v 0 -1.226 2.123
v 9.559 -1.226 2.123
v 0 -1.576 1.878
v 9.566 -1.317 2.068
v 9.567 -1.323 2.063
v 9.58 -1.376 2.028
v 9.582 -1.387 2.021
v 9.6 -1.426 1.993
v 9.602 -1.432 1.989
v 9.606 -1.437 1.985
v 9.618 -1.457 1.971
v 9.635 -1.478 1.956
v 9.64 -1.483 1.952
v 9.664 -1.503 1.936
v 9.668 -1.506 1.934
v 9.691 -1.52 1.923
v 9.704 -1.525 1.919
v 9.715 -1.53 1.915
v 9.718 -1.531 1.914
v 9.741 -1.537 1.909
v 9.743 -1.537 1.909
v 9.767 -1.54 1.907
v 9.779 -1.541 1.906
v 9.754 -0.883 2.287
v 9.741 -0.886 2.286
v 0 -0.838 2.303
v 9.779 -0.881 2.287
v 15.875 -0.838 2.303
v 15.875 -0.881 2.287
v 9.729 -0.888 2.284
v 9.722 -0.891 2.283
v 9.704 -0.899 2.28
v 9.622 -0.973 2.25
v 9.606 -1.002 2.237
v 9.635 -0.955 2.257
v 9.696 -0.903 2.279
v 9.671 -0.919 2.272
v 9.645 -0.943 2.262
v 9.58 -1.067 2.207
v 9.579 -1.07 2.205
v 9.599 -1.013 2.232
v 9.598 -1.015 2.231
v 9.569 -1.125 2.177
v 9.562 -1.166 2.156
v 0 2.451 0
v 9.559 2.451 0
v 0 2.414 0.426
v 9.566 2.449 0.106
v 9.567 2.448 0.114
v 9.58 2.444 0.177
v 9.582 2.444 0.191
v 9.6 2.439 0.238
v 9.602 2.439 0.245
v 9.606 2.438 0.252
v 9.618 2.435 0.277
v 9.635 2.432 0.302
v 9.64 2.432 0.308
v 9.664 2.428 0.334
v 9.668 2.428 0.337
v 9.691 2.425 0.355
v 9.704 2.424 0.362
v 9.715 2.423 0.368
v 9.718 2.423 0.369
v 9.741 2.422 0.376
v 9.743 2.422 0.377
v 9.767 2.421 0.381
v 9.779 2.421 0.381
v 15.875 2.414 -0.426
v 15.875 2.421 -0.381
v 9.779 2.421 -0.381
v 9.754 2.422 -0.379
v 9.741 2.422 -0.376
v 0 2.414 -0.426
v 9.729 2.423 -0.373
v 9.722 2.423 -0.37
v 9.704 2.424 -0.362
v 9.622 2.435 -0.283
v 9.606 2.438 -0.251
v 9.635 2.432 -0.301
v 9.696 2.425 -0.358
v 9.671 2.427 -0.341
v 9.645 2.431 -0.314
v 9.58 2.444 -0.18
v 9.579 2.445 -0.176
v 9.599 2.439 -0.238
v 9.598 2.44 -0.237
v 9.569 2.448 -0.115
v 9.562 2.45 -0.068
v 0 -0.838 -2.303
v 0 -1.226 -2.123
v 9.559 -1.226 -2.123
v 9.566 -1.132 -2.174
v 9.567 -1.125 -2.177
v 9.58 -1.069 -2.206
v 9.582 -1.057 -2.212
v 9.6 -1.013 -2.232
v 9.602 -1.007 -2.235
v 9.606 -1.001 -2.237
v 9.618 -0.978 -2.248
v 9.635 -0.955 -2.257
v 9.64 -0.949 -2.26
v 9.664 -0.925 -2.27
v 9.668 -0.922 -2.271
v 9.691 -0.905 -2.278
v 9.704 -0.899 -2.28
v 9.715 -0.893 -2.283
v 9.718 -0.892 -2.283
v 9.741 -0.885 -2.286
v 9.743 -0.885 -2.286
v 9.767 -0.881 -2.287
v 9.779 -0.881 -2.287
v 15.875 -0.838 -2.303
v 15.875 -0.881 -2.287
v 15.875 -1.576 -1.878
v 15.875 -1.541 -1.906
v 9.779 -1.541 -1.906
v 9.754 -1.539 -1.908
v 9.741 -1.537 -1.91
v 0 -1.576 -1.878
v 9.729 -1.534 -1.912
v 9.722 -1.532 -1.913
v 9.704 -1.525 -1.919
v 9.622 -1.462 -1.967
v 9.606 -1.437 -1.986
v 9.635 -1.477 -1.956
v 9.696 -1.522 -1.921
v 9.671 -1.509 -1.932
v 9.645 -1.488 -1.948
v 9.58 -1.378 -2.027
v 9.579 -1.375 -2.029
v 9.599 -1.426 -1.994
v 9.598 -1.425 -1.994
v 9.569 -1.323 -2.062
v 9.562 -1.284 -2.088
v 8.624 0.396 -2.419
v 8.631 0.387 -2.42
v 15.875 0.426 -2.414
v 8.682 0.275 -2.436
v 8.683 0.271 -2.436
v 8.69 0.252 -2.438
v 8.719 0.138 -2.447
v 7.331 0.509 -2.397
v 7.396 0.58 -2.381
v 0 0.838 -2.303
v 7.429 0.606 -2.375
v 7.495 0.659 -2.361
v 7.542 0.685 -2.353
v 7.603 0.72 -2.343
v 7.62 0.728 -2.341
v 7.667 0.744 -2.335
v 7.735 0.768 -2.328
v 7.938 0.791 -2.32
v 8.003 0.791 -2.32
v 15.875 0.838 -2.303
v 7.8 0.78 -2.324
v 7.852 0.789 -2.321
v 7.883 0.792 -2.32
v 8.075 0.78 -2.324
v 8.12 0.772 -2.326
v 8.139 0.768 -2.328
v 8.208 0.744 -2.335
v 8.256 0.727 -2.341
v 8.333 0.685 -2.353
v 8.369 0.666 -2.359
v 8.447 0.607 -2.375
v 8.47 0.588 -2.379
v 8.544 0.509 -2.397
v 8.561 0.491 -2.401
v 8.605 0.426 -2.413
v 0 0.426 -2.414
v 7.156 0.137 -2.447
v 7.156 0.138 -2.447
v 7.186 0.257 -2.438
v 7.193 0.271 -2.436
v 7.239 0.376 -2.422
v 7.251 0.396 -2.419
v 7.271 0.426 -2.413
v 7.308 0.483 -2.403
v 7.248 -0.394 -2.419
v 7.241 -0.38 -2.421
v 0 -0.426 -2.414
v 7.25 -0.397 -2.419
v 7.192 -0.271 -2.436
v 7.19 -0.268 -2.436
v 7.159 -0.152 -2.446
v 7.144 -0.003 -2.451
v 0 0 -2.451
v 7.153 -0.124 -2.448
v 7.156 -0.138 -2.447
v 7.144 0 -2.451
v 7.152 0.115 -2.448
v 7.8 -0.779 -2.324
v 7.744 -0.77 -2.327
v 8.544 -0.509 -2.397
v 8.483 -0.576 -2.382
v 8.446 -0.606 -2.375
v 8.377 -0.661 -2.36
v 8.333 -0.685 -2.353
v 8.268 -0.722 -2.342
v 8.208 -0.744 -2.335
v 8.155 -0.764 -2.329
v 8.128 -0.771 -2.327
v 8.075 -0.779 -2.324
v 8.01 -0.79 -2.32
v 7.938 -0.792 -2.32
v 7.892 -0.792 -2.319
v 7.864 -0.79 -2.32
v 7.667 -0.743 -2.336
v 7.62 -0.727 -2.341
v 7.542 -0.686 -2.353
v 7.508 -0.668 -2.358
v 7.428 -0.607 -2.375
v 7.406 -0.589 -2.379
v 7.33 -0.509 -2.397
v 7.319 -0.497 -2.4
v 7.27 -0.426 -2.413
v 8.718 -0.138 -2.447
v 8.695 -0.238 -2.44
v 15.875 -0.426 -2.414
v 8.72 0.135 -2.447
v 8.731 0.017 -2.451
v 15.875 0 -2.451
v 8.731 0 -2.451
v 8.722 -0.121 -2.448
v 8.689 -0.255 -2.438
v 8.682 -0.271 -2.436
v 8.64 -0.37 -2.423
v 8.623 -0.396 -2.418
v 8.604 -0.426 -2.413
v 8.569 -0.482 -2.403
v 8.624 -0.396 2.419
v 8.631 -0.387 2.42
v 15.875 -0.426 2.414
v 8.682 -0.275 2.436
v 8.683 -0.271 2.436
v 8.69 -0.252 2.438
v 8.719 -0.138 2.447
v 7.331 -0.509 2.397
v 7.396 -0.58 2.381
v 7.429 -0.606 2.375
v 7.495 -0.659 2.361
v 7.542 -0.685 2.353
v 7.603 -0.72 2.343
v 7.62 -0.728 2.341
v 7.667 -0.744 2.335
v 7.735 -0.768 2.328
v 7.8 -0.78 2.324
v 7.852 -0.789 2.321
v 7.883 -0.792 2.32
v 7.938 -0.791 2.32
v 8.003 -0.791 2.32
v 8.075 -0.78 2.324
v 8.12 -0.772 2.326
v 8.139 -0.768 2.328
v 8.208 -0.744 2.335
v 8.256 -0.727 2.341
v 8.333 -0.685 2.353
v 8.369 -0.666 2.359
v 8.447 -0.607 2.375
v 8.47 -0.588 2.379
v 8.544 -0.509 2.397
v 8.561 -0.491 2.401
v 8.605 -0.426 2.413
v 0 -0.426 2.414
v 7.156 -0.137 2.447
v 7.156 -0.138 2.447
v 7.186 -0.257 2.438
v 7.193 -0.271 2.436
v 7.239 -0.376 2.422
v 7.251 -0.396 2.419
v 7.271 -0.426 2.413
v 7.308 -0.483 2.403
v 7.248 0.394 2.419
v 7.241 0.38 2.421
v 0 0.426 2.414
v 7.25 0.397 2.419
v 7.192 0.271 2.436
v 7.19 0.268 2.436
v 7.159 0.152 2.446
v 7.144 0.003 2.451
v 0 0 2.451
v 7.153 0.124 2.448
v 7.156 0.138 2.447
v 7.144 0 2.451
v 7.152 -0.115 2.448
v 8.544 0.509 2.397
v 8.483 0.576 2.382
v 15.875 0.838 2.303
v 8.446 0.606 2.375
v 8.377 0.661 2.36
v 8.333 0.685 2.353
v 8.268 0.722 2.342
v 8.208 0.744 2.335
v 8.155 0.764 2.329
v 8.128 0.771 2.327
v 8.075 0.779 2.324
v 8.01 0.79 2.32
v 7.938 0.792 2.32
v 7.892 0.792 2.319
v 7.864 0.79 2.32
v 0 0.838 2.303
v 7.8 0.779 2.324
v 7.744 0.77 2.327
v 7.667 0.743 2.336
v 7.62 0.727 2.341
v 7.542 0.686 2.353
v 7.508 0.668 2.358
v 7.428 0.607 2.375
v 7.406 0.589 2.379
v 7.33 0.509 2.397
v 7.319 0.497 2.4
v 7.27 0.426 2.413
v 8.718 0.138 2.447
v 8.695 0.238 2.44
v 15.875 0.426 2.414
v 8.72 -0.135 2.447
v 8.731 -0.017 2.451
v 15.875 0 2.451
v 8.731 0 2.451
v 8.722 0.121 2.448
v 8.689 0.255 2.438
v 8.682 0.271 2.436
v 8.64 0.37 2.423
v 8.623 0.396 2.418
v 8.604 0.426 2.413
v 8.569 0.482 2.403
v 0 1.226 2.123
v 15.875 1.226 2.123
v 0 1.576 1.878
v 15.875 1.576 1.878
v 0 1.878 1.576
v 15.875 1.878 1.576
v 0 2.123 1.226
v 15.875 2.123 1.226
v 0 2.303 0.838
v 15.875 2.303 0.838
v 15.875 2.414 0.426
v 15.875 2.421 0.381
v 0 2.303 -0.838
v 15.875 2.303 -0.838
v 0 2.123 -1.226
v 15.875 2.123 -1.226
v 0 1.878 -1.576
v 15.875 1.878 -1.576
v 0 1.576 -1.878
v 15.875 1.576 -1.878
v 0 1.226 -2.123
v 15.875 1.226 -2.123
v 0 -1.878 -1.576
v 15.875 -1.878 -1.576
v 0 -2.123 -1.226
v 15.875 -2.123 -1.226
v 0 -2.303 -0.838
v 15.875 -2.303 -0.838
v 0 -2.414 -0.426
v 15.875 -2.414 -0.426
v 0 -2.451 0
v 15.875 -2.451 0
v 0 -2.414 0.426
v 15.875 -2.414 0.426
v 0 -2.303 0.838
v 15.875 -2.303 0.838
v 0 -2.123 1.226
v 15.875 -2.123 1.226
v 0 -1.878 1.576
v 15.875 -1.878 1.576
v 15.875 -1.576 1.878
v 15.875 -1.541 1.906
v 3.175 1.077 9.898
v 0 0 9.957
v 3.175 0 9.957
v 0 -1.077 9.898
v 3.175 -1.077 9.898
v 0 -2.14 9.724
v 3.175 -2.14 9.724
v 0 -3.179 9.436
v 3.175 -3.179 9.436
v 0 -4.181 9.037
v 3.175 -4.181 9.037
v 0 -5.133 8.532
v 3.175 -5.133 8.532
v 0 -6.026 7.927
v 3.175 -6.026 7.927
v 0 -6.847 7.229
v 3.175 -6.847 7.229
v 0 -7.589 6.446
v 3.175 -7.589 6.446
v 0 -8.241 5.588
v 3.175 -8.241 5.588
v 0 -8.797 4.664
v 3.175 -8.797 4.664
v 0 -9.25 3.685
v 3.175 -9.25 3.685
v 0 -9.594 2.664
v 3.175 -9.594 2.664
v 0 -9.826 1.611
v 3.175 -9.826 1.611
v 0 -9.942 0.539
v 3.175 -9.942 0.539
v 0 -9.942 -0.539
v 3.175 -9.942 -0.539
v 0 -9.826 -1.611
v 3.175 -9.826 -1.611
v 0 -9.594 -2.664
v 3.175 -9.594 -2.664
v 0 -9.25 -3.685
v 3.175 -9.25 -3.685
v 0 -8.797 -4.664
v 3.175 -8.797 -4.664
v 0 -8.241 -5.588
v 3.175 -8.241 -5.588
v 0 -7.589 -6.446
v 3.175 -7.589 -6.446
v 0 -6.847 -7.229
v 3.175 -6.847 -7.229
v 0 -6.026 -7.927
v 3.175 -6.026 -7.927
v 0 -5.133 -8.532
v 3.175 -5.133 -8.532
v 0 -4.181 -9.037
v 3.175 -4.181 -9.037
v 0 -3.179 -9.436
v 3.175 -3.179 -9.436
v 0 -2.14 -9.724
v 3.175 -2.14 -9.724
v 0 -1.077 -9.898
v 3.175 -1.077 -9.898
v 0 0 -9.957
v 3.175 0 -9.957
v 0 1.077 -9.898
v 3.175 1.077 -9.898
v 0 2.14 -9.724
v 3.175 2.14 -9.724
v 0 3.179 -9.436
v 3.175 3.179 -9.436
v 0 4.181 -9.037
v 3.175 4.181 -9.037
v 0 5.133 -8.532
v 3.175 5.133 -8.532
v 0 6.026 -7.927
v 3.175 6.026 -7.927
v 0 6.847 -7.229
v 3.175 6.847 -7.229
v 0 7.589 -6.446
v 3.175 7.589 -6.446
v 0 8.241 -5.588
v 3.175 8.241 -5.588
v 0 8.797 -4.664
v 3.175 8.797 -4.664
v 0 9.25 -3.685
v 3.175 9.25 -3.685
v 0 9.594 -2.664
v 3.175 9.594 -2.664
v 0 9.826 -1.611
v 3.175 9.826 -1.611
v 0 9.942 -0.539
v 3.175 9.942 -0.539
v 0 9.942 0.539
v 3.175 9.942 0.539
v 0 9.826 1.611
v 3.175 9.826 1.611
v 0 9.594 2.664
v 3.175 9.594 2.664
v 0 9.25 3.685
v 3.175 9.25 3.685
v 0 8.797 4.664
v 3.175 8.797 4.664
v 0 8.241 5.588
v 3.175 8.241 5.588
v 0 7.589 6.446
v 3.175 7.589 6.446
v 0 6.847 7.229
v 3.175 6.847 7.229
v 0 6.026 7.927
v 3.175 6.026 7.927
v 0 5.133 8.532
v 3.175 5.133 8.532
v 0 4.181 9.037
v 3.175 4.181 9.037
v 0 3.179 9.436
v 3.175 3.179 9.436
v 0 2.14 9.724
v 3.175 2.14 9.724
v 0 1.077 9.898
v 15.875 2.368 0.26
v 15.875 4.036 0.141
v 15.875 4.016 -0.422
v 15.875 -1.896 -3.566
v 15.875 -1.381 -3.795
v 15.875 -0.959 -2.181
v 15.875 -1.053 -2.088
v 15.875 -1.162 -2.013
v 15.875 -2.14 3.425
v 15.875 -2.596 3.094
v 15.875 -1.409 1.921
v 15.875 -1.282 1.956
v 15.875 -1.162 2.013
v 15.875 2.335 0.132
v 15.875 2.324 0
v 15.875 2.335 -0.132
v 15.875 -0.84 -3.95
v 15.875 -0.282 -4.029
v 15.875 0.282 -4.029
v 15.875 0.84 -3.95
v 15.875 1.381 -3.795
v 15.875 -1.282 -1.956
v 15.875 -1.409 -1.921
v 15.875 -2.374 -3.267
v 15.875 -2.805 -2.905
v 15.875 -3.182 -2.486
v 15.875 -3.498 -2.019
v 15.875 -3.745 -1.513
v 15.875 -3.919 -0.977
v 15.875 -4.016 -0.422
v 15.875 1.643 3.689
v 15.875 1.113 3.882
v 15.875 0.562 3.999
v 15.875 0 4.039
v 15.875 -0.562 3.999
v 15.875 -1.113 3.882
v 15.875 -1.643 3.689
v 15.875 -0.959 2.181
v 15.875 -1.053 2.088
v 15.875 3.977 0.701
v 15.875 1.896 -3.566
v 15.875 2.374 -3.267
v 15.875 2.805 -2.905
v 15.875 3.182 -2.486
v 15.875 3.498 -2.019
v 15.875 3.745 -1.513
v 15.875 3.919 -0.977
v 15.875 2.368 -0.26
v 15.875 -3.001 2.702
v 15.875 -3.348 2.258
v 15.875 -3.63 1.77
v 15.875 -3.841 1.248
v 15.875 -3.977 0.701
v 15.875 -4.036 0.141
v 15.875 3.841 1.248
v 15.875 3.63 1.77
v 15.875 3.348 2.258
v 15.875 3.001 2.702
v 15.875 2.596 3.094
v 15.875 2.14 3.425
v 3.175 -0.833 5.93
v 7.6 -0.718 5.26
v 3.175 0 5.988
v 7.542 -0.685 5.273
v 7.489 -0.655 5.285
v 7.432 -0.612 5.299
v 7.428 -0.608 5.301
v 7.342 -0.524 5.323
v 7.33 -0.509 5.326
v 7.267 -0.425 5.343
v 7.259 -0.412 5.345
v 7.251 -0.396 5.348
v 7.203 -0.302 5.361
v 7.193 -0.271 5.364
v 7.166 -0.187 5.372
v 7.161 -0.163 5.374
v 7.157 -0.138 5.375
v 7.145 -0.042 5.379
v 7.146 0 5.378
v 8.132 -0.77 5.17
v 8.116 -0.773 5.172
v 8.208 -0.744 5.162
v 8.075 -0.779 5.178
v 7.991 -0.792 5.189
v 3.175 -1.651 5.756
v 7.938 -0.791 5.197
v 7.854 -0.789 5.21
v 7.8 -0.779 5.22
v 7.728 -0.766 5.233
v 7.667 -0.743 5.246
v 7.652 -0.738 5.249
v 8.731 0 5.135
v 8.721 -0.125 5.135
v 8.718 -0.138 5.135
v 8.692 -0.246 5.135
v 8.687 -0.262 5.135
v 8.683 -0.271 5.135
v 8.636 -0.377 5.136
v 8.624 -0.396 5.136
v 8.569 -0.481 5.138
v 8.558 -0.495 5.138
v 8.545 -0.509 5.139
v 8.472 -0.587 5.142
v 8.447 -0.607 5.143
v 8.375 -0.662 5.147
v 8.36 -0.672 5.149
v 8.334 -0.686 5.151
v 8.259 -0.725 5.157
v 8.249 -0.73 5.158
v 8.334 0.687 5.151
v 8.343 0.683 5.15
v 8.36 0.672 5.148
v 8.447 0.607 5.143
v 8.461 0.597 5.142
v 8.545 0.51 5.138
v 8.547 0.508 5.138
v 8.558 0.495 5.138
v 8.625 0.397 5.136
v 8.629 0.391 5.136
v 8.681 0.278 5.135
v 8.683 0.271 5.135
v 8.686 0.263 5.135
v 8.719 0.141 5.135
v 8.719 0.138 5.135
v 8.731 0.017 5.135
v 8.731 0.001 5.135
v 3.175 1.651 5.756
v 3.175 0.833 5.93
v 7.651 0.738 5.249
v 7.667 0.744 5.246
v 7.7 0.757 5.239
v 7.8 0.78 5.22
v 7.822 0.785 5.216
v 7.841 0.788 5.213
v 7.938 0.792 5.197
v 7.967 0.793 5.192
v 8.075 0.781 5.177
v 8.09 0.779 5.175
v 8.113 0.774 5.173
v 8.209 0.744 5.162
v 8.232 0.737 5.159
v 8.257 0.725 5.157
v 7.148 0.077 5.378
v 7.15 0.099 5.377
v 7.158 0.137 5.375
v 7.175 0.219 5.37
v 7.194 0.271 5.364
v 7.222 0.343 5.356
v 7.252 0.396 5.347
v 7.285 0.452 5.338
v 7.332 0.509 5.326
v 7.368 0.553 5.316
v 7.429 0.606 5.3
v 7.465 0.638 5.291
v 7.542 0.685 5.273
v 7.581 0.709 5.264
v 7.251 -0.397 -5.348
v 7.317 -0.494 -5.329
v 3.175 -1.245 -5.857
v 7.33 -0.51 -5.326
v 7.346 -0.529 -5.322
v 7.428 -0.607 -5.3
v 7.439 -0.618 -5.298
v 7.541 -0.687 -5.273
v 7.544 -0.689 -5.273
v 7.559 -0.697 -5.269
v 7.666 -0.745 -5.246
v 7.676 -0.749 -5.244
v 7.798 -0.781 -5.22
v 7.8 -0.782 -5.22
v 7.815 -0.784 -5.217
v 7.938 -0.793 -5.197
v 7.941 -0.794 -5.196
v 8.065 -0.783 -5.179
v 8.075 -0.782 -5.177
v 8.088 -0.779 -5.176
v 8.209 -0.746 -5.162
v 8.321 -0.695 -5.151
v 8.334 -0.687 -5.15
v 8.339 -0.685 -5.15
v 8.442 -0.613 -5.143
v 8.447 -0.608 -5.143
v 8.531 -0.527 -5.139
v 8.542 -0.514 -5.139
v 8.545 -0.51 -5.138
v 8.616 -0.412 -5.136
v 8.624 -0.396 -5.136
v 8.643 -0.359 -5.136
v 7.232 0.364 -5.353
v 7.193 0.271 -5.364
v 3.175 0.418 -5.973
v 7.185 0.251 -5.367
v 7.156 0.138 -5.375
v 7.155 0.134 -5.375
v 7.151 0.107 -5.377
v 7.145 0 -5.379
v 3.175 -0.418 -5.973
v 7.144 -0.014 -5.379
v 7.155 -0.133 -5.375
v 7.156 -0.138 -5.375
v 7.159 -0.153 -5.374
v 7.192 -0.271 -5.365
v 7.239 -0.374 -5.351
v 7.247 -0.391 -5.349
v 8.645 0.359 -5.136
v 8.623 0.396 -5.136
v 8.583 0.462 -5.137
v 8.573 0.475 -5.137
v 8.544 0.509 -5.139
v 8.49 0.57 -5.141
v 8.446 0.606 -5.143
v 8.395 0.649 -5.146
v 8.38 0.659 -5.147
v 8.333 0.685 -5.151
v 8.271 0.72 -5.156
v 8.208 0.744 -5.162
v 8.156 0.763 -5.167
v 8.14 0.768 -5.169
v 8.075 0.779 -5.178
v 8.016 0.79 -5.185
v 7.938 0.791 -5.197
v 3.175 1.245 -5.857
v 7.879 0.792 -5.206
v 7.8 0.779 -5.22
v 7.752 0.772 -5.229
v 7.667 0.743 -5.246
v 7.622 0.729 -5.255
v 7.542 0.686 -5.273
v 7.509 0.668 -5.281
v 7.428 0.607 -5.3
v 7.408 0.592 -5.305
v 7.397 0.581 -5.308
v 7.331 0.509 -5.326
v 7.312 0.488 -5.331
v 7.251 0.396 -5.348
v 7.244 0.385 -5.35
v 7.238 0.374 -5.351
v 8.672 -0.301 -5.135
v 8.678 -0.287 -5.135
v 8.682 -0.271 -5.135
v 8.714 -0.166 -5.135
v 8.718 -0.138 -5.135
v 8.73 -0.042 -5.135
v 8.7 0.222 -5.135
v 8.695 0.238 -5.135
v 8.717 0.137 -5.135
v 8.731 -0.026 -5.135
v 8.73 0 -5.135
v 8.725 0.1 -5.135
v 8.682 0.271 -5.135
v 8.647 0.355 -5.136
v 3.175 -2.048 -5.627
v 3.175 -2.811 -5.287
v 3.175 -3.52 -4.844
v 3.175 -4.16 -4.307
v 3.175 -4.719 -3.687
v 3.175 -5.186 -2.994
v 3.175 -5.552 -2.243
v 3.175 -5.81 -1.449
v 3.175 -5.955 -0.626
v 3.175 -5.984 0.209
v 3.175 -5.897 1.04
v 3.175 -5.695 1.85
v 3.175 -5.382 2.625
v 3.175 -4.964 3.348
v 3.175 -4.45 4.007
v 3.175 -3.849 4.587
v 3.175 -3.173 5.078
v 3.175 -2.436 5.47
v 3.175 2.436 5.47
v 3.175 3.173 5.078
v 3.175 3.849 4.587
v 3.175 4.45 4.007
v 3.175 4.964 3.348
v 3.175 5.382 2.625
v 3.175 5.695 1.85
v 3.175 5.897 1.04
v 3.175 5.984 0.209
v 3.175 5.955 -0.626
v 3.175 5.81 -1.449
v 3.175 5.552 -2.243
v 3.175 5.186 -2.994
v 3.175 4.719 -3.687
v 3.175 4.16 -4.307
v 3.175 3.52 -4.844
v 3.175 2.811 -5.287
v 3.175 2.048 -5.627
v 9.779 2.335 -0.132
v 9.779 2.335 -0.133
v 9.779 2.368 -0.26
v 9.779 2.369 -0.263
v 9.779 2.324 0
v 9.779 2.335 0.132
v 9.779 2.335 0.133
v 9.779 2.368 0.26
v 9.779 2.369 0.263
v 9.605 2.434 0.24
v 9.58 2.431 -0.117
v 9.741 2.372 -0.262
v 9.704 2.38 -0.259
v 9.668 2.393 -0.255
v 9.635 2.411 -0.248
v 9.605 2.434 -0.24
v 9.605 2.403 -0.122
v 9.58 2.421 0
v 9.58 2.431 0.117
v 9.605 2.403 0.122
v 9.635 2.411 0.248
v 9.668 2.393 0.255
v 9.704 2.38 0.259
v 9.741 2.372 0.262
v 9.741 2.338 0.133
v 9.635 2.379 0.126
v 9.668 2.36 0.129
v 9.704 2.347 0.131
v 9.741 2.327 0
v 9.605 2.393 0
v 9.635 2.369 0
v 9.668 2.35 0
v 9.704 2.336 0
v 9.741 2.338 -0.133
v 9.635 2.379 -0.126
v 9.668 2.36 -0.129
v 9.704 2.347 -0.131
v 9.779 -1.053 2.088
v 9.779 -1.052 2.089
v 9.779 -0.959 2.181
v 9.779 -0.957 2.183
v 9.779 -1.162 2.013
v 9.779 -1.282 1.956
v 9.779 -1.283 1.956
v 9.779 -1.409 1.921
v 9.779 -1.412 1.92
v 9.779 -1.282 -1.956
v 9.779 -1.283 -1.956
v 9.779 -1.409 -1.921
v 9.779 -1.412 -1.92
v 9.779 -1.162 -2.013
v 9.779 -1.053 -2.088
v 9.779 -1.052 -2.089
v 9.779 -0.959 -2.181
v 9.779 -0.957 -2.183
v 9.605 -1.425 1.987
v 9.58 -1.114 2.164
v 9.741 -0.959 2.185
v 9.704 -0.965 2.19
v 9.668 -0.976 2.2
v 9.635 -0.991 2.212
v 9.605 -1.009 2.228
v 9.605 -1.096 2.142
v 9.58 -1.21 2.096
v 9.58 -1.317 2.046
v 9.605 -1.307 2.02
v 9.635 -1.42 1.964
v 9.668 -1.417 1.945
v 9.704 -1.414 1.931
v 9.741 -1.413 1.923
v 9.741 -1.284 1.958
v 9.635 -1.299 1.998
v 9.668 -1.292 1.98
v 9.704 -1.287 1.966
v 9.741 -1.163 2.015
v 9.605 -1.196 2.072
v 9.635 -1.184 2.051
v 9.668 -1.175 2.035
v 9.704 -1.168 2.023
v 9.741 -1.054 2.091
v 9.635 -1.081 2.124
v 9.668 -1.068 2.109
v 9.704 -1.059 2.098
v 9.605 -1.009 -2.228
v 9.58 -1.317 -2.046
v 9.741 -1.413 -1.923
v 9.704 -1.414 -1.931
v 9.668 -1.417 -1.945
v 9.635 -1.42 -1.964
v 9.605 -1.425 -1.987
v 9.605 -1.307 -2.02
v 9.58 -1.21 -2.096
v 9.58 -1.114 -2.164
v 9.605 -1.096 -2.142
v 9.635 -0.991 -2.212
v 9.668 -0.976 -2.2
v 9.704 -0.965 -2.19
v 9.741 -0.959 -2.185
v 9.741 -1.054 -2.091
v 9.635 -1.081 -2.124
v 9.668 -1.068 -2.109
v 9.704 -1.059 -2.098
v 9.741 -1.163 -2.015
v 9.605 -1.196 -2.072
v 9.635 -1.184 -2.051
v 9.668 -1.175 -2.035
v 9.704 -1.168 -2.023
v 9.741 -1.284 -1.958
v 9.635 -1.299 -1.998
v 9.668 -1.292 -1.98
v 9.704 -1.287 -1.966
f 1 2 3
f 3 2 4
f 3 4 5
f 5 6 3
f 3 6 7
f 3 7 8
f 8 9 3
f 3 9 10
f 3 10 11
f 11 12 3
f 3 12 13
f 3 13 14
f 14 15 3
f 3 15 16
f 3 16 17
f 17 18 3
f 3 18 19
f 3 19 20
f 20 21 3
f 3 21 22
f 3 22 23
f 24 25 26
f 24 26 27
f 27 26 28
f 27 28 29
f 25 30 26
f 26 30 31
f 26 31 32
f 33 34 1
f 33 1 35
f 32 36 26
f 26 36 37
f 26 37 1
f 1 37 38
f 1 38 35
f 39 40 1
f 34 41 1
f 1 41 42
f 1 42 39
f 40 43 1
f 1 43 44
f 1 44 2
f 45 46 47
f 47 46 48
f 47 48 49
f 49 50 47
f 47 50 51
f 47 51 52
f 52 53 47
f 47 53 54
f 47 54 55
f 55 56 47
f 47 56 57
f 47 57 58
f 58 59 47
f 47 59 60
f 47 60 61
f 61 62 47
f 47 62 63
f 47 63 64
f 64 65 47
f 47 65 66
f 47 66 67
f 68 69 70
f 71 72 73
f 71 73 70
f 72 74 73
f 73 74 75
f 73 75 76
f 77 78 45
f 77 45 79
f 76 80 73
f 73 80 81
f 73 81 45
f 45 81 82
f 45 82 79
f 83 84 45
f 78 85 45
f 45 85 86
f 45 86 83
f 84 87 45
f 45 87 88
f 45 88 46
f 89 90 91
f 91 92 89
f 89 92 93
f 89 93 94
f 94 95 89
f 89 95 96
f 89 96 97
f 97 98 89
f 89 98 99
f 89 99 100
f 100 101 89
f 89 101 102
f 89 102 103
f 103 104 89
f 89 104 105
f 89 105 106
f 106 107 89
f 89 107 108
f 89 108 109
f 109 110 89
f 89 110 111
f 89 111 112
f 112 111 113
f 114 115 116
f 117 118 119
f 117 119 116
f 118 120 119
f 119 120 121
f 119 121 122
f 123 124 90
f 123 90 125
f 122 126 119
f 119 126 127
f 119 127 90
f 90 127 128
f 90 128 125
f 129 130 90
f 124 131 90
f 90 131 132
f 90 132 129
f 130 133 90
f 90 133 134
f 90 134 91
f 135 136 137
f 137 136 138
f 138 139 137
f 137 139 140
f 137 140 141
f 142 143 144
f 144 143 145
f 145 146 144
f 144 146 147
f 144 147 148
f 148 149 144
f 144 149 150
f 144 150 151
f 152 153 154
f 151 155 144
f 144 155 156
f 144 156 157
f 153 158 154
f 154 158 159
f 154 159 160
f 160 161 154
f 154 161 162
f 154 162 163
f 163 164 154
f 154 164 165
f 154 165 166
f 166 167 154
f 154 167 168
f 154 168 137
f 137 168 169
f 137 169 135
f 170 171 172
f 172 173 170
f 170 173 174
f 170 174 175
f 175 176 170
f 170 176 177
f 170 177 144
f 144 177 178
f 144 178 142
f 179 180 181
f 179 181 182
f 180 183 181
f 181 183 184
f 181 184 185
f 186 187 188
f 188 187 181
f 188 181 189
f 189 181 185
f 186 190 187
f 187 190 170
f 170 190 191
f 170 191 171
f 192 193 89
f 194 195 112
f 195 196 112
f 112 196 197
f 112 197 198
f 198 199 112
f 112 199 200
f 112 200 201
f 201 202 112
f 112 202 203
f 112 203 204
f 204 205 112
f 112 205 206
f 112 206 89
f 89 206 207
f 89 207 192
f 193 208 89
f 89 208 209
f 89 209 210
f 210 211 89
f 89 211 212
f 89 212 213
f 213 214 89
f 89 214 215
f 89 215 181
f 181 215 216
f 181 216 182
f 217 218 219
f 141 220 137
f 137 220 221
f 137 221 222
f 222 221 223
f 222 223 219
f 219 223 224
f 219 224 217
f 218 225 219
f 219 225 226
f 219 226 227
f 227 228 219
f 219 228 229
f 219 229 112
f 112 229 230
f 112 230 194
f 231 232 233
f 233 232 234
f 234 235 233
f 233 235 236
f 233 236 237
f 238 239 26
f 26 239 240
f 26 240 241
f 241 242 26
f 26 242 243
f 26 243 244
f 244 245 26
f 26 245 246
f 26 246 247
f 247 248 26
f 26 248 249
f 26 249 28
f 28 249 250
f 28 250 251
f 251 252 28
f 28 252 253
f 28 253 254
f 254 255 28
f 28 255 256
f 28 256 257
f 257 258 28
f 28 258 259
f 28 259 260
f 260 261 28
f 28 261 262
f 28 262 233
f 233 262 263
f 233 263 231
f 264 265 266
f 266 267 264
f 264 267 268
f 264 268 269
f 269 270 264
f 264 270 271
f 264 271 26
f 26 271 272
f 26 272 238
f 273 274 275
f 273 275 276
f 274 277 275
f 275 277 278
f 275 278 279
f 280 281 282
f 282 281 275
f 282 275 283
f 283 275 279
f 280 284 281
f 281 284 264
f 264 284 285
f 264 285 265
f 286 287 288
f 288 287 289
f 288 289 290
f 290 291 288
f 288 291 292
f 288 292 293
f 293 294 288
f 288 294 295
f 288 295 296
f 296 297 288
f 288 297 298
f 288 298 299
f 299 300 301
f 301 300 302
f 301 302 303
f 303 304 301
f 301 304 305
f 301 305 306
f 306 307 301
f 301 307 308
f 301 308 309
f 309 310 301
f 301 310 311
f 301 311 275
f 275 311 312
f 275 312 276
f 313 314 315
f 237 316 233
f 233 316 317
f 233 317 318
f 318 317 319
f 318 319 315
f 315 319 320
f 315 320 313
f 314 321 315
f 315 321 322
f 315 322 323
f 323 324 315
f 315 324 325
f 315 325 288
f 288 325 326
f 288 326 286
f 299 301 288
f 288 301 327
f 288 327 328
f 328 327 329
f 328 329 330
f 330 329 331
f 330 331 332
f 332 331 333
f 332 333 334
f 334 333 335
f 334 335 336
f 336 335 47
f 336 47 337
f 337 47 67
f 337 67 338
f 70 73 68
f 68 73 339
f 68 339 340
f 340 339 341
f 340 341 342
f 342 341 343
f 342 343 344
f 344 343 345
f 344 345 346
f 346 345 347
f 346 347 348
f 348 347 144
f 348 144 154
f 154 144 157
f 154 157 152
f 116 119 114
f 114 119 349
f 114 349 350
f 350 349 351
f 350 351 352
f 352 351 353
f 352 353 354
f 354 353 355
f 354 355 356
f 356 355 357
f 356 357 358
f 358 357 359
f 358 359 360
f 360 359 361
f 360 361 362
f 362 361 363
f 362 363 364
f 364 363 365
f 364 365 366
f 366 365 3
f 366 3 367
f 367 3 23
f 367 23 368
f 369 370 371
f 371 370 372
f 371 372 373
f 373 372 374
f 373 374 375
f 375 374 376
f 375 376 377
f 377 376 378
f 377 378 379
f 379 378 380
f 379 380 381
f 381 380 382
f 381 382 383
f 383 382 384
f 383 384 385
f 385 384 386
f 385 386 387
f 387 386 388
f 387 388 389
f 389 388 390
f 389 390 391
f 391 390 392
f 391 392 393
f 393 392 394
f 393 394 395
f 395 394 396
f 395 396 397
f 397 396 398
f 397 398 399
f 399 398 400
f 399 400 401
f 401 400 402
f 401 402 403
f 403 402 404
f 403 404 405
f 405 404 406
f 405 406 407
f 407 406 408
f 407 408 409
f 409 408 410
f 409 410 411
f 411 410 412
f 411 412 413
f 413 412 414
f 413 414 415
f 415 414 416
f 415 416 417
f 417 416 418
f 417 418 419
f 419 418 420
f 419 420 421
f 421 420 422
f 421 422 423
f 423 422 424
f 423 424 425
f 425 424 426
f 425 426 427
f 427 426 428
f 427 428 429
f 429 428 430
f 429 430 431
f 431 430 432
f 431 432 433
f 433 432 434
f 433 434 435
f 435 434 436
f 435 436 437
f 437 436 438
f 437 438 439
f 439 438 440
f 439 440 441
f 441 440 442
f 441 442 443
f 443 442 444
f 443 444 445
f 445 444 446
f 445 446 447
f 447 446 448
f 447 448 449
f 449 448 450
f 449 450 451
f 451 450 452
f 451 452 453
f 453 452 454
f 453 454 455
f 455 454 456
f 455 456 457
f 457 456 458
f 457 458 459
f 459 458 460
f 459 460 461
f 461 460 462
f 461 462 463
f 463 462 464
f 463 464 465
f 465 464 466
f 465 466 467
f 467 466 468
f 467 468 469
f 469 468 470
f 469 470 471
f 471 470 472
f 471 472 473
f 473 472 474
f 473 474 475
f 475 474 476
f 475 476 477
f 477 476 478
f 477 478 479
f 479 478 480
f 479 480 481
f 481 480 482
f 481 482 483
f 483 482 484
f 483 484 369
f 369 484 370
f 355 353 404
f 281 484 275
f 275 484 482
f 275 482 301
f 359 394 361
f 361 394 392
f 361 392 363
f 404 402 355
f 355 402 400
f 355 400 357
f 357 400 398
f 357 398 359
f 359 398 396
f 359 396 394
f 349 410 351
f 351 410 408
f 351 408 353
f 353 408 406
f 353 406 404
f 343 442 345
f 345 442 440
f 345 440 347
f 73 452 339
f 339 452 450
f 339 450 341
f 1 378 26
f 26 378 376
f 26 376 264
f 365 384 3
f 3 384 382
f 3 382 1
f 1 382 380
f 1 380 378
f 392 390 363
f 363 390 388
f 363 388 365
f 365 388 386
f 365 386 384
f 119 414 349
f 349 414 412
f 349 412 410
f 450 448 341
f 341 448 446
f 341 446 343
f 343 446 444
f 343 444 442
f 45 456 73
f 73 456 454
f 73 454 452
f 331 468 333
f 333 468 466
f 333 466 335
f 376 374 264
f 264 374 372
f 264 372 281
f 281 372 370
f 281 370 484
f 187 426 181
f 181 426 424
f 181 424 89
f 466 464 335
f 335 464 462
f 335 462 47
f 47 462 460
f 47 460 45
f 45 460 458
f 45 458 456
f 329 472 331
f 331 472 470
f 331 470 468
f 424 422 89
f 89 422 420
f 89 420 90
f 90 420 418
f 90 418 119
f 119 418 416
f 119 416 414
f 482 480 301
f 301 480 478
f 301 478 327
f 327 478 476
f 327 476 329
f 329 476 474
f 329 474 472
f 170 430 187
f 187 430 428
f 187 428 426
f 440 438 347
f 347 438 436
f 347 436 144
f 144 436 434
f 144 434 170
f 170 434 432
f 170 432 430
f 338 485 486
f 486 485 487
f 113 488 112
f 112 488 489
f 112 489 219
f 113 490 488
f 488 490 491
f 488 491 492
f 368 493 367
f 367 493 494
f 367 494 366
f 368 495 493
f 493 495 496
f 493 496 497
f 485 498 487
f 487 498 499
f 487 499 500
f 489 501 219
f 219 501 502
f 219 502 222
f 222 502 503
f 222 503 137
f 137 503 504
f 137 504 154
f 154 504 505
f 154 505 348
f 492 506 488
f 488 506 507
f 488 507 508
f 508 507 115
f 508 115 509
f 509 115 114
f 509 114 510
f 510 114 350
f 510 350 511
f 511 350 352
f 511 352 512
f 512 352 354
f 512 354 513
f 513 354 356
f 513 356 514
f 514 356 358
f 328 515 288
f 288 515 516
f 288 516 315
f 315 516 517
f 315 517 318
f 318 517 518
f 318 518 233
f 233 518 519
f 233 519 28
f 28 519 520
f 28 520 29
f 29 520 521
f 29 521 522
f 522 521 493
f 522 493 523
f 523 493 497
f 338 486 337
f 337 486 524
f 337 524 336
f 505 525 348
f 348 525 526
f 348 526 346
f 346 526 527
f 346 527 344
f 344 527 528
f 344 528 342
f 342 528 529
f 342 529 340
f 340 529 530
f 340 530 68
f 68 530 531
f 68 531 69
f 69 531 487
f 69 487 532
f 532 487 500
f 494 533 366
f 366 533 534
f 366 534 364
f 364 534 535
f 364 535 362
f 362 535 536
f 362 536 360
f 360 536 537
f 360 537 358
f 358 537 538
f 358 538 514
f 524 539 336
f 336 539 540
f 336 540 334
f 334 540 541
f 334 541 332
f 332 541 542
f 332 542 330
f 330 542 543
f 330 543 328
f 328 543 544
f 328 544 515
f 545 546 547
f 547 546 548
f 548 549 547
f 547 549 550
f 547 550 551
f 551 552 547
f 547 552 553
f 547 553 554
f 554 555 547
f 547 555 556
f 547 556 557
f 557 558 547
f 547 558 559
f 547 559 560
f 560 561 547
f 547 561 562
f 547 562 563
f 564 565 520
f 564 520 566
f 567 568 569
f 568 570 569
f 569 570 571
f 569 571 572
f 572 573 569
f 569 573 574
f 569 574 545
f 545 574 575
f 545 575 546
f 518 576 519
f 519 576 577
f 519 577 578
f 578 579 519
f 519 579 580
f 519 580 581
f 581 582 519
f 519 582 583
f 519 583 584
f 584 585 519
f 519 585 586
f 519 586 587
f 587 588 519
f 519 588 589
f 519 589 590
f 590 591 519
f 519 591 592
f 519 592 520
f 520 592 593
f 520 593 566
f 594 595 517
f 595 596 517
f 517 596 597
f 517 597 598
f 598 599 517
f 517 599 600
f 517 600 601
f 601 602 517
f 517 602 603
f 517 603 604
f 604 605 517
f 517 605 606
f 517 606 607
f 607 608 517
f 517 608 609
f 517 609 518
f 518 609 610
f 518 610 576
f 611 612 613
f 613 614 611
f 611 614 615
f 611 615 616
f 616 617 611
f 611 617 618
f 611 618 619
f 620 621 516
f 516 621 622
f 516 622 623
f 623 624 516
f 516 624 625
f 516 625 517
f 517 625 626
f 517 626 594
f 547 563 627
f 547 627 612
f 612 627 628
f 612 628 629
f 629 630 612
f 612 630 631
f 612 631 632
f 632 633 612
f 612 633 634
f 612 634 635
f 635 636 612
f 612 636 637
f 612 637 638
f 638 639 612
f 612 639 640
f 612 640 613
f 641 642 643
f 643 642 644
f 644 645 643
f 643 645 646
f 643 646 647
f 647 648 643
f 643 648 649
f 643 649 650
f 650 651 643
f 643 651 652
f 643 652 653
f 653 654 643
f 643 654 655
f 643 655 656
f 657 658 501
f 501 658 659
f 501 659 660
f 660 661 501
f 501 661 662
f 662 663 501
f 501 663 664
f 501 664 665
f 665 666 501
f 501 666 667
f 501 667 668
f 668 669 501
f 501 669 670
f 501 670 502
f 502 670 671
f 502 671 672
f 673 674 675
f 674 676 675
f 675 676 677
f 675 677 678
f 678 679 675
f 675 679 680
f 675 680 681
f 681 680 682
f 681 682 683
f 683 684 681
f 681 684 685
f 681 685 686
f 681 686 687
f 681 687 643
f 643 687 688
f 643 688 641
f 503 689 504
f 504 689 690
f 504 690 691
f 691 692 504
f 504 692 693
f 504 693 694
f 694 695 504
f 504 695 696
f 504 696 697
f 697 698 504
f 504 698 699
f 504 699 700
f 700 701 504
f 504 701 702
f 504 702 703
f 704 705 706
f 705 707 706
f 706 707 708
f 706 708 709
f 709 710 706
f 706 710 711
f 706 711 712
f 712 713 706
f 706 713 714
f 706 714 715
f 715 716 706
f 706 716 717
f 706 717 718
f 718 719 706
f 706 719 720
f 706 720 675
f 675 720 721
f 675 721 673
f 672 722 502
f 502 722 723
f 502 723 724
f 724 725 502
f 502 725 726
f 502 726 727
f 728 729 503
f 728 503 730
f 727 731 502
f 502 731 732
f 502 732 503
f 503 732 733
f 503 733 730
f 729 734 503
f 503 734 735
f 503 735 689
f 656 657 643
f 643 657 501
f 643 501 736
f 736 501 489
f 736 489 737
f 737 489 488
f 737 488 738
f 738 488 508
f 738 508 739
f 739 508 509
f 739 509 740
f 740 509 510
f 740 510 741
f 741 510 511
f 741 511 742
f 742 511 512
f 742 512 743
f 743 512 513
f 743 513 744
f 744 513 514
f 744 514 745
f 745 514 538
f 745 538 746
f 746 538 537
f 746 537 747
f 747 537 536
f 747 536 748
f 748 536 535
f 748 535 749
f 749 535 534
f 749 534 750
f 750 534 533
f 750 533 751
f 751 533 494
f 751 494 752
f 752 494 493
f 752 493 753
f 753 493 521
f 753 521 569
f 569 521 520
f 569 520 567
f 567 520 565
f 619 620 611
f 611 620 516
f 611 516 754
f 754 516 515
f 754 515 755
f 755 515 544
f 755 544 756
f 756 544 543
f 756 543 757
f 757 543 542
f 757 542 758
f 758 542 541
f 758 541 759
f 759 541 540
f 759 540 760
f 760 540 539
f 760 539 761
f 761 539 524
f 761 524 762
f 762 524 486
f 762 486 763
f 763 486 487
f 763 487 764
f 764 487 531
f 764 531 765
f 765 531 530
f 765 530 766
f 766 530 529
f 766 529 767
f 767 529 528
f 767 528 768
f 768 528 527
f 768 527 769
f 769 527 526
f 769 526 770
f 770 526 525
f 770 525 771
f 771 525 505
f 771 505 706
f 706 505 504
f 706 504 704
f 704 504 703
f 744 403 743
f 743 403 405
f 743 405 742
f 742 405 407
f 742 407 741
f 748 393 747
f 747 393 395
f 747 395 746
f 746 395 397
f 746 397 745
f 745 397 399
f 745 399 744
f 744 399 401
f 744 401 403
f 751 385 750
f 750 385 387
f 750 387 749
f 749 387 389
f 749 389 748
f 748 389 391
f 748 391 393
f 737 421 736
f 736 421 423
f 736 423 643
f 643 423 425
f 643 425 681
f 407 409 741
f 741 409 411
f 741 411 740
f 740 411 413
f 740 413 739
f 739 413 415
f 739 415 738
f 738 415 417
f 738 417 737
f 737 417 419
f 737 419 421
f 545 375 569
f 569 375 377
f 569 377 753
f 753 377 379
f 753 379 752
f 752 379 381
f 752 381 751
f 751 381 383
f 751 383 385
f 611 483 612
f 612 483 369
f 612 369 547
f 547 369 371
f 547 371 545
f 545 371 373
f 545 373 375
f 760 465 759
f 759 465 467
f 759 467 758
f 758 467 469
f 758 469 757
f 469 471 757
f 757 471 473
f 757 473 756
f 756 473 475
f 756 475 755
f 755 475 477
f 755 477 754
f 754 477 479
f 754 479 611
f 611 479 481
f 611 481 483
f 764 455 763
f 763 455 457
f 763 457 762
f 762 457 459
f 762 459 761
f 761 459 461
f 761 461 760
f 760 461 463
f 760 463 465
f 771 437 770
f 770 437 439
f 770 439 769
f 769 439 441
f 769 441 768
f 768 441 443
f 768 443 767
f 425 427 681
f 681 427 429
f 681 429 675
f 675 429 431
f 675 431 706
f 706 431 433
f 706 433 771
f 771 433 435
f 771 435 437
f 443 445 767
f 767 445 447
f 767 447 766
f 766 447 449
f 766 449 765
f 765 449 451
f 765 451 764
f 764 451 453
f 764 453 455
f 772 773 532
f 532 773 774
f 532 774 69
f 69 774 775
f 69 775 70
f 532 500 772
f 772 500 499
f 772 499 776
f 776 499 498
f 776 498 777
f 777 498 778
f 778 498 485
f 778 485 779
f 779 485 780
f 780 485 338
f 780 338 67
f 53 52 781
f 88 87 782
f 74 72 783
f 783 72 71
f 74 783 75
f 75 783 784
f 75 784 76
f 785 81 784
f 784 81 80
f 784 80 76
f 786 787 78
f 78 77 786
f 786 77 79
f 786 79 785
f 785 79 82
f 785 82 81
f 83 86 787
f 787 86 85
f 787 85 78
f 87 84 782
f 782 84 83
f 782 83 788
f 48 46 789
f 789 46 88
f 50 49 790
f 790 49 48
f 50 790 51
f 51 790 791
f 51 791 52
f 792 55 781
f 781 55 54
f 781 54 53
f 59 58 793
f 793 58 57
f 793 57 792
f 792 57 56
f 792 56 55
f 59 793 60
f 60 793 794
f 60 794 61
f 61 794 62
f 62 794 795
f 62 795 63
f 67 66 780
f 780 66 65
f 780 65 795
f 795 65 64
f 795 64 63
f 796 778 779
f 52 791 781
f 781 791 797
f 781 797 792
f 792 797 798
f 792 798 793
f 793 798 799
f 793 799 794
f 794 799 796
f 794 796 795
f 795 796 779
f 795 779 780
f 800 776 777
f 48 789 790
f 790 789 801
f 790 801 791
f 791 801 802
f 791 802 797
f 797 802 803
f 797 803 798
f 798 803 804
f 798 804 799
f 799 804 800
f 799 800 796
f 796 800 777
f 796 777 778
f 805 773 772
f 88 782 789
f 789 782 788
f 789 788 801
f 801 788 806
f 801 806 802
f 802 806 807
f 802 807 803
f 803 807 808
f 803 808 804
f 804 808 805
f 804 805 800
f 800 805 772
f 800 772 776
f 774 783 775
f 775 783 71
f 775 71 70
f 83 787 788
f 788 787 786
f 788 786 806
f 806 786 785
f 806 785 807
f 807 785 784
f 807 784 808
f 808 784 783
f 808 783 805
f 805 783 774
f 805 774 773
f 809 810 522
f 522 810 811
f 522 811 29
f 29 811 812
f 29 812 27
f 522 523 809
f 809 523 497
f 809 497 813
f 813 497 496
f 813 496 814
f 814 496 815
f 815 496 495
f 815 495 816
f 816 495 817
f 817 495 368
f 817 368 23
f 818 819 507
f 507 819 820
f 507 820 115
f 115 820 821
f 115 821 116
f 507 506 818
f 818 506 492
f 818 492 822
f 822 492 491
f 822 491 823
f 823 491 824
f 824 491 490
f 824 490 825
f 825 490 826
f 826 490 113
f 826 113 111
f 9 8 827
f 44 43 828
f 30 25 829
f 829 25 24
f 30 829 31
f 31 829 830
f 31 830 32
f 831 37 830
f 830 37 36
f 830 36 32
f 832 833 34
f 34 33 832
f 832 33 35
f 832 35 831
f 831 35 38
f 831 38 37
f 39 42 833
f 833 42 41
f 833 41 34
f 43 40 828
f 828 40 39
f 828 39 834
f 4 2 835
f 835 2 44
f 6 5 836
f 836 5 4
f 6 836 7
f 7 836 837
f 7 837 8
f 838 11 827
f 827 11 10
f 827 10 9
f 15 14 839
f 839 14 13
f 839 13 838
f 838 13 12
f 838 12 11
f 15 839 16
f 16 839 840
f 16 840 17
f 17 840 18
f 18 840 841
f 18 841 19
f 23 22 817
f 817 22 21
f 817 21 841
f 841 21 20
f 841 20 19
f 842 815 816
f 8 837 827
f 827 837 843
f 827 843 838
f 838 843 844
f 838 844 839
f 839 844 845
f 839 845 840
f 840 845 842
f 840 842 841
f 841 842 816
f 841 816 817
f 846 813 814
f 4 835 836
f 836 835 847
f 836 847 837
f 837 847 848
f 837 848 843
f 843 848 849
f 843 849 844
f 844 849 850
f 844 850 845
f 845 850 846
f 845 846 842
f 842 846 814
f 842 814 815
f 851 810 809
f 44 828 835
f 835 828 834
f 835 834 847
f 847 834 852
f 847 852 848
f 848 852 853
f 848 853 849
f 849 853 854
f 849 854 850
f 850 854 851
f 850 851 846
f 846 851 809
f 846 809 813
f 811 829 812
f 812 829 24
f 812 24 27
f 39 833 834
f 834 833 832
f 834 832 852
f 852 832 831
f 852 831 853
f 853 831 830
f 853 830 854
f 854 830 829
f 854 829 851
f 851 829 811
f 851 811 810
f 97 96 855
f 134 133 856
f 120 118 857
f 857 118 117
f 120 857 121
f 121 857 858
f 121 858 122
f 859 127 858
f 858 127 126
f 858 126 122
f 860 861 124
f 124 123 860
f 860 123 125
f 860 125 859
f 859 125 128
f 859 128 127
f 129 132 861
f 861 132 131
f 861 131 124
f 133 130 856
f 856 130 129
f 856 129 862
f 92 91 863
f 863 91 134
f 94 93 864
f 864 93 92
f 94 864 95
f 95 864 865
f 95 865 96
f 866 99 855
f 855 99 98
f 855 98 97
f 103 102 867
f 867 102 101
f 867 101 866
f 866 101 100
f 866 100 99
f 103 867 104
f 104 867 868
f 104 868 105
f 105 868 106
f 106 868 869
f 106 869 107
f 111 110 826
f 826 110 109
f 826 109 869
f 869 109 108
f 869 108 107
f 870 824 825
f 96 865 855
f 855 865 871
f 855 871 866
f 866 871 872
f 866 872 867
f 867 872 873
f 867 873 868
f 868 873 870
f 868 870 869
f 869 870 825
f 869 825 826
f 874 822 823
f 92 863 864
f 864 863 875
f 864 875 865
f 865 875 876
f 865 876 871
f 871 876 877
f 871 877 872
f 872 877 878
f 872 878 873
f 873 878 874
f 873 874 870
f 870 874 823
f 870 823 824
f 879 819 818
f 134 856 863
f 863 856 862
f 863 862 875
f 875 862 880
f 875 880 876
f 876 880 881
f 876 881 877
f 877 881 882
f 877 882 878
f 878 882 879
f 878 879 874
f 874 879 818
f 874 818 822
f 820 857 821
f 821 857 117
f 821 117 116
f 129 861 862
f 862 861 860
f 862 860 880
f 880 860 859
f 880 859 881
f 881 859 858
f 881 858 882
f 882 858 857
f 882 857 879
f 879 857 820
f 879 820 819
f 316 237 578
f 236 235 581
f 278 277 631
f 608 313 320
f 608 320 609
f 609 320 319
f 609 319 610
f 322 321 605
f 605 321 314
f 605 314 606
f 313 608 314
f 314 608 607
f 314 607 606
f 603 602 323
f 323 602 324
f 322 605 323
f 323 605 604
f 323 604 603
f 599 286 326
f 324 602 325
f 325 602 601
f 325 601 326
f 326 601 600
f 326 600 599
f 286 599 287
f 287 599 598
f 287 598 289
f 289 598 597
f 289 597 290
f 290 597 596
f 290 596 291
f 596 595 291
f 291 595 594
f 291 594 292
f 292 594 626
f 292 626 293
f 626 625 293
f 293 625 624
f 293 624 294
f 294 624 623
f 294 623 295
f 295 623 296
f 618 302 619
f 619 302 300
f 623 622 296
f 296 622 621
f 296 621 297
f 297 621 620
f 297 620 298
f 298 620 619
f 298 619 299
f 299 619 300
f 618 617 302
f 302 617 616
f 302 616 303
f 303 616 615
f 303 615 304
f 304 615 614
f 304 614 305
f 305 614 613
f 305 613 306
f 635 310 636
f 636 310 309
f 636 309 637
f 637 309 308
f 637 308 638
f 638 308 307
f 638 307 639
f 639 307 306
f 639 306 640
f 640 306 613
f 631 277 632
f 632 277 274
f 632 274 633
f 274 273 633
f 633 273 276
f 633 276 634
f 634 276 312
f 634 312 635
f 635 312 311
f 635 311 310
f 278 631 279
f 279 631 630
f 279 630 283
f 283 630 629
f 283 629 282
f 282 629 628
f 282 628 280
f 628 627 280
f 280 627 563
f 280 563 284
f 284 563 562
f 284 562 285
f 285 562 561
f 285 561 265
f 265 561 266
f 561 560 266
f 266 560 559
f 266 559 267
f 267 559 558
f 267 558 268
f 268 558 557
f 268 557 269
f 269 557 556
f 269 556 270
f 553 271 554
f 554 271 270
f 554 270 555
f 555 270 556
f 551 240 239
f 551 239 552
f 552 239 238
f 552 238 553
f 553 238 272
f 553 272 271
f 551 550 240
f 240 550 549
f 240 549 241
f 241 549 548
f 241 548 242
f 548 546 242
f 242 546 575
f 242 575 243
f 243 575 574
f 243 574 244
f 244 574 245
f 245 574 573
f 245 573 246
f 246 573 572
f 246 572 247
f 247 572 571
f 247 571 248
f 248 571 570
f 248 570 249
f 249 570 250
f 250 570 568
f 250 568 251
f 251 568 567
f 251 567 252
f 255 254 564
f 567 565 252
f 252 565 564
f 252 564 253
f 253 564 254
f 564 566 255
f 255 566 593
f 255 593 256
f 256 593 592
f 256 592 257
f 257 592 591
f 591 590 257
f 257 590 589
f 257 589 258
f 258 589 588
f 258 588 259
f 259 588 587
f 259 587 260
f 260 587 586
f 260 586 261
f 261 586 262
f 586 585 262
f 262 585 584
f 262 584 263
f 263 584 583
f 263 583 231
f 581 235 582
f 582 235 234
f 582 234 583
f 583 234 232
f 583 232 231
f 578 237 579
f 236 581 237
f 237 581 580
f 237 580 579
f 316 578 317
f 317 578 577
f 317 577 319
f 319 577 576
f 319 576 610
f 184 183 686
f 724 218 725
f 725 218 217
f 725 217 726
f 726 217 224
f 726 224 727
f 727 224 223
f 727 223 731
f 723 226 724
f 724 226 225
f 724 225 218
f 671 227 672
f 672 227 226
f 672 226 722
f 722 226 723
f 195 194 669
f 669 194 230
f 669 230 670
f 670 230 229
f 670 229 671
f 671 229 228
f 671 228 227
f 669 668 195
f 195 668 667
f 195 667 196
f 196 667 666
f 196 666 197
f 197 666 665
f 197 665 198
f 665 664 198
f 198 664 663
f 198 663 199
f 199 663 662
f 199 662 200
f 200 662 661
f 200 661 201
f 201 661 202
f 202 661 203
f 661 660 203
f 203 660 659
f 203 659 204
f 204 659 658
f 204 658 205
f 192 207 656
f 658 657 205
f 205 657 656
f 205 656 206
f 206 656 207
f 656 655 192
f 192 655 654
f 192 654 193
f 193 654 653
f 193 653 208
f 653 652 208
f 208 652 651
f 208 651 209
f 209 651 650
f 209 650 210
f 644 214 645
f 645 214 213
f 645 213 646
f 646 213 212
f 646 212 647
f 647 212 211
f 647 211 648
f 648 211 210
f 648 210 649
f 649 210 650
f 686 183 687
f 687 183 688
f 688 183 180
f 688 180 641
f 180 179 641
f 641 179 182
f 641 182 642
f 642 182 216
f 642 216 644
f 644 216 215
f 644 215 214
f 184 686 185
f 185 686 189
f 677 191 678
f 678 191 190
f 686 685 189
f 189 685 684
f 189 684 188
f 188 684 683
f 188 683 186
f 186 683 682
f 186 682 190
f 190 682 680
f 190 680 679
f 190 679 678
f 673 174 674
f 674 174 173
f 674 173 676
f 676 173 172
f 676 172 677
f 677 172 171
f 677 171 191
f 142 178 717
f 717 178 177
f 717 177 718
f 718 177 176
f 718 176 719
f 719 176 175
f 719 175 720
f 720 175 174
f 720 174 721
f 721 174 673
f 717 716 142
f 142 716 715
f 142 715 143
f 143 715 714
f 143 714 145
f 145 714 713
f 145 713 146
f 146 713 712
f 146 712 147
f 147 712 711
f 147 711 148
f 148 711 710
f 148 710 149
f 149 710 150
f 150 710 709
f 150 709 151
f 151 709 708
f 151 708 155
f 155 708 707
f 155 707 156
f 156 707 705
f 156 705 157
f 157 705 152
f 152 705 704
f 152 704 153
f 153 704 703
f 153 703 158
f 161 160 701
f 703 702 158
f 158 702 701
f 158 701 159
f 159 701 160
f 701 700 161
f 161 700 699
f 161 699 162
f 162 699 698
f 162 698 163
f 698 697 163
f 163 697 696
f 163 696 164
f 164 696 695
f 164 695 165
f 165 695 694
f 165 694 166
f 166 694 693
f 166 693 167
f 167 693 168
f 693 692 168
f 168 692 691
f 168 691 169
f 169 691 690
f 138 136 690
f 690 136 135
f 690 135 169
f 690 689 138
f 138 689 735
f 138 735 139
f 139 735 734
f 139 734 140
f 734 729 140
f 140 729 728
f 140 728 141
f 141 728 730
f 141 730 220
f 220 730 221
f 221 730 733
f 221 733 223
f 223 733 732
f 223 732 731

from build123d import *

# Parameters (mm, degrees)
BOSS_EXTRUDE2_DEPTH      = 6.35
FILLET1_R                = 0.254
CIRPATTERN3_COUNT        = 3
FILLET1_OF_CIRPATTERN3_R = 0.254
CUT_EXTRUDE1_DEPTH       = 22.220069761
CUT_EXTRUDE1_DEPTH_BACK  = 22.220069761
SKETCH6_R                = 0.79375


with BuildPart() as part:
    # Sketch3 → Revolve1 (revolve)
    with BuildSketch(Plane.XY, mode=Mode.PRIVATE) as revolve1_sk:
        Polygon((0, 9.9568), (0, 2.4511), (15.875, 2.4511), (15.875, 4.0386), (3.175, 5.98805), (3.175, 9.9568), align=None)
    revolve(revolve1_sk.sketch.rotate(Axis((0, 0, 0), (1, 0, 0)), 90), axis=Axis((0, 0, 0), (1, 0, 0)))

    # Sketch5 → Boss-Extrude2 (add)
    with BuildSketch(Plane.ZY.offset(-15.875)):
        with BuildLine():
            ThreePointArc((-0.381, 2.421307541), (0, 2.4511), (0.381, 2.421307541))
            ThreePointArc((0.381, 2.421307541), (0, 2.3241), (-0.381, 2.421307541))
        make_face()
    boss_extrude2 = extrude(amount=BOSS_EXTRUDE2_DEPTH)

    # Fillet1
    # the kernel refuses this fillet: 0.254 mm, written as the material it takes off along each edge
    with BuildSketch(Plane(origin=(9.525, 3.119358803, 0), x_dir=(0, -0.2692049658318269, 0.9630829073197619), z_dir=(0, 0.9630829073197619, 0.2692049658318269))) as fillet1_piece_1_section:
        with BuildLine():
            CenterArc((0.795258803 - FILLET1_R, FILLET1_R), FILLET1_R, 270, 90)
            Line((0.795258803 - FILLET1_R, 0), (0.795258803, 0))
            Line((0.795258803, 0), (0.795258803, FILLET1_R))
        make_face()
    fillet1_piece_1 = revolve(axis=Axis((9.525, 3.119358803, 0), (1, 0, 0)), revolution_arc=148.766073655, mode=Mode.PRIVATE)
    fillet1_piece_1 = fillet1_piece_1 & Plane(origin=(9.597702858, 0, 0), x_dir=(0, 0, 1), z_dir=(1, 0, 0)) * Cylinder(2.4511, 4, mode=Mode.PRIVATE)
    add(fillet1_piece_1, mode=Mode.SUBTRACT)

    # CirPattern3: Boss-Extrude2 ×3 about axis
    cirpattern3_axis = Axis((0, 0, 0), (1, 0, 0))
    for i in range(1, CIRPATTERN3_COUNT):
        add(boss_extrude2.rotate(cirpattern3_axis, i * 360 / CIRPATTERN3_COUNT))

    # Fillet1 of CirPattern3
    # the kernel refuses this fillet: 0.254 mm, written as the material it takes off along each edge
    with BuildSketch(Plane(origin=(9.525, -1.559679402, 2.701443967), x_dir=(0, -0.699451780773575, -0.7146797928951643), z_dir=(0, -0.7146797928951643, 0.699451780773575))) as fillet1_of_cirpattern3_piece_1_section:
        with BuildLine():
            CenterArc((0.795258803 - FILLET1_OF_CIRPATTERN3_R, FILLET1_OF_CIRPATTERN3_R), FILLET1_OF_CIRPATTERN3_R, 270, 90)
            Line((0.795258803 - FILLET1_OF_CIRPATTERN3_R, 0), (0.795258803, 0))
            Line((0.795258803, 0), (0.795258803, FILLET1_OF_CIRPATTERN3_R))
        make_face()
    fillet1_of_cirpattern3_piece_1 = revolve(axis=Axis((9.525, -1.559679402, 2.701443967), (1, 0, 0)), revolution_arc=148.766073655, mode=Mode.PRIVATE)
    fillet1_of_cirpattern3_piece_1 = fillet1_of_cirpattern3_piece_1 & Plane(origin=(9.597702858, 0, 0), x_dir=(0, 0, 1), z_dir=(1, 0, 0)) * Cylinder(2.4511, 4, mode=Mode.PRIVATE)
    add(fillet1_of_cirpattern3_piece_1, mode=Mode.SUBTRACT)
    with BuildSketch(Plane(origin=(9.525, -1.559679402, -2.701443967), x_dir=(0, 0.968656746605401, -0.24840311442459811), z_dir=(0, -0.24840311442459811, -0.968656746605401))) as fillet1_of_cirpattern3_piece_2_section:
        with BuildLine():
            CenterArc((0.795258803 - FILLET1_OF_CIRPATTERN3_R, FILLET1_OF_CIRPATTERN3_R), FILLET1_OF_CIRPATTERN3_R, 270, 90)
            Line((0.795258803 - FILLET1_OF_CIRPATTERN3_R, 0), (0.795258803, 0))
            Line((0.795258803, 0), (0.795258803, FILLET1_OF_CIRPATTERN3_R))
        make_face()
    fillet1_of_cirpattern3_piece_2 = revolve(axis=Axis((9.525, -1.559679402, -2.701443967), (1, 0, 0)), revolution_arc=148.766073655, mode=Mode.PRIVATE)
    fillet1_of_cirpattern3_piece_2 = fillet1_of_cirpattern3_piece_2 & Plane(origin=(9.597702858, 0, 0), x_dir=(0, 0, 1), z_dir=(1, 0, 0)) * Cylinder(2.4511, 4, mode=Mode.PRIVATE)
    add(fillet1_of_cirpattern3_piece_2, mode=Mode.SUBTRACT)

    # Sketch6 → Cut-Extrude1 (cut, two sides: drawn at the far end of the back side and taken through both)
    with BuildSketch(Plane.XY.offset(-CUT_EXTRUDE1_DEPTH_BACK)):
        with Locations((7.9375, 0)):
            Circle(SKETCH6_R)
    extrude(amount=CUT_EXTRUDE1_DEPTH + CUT_EXTRUDE1_DEPTH_BACK, mode=Mode.SUBTRACT)


solid = part.part
